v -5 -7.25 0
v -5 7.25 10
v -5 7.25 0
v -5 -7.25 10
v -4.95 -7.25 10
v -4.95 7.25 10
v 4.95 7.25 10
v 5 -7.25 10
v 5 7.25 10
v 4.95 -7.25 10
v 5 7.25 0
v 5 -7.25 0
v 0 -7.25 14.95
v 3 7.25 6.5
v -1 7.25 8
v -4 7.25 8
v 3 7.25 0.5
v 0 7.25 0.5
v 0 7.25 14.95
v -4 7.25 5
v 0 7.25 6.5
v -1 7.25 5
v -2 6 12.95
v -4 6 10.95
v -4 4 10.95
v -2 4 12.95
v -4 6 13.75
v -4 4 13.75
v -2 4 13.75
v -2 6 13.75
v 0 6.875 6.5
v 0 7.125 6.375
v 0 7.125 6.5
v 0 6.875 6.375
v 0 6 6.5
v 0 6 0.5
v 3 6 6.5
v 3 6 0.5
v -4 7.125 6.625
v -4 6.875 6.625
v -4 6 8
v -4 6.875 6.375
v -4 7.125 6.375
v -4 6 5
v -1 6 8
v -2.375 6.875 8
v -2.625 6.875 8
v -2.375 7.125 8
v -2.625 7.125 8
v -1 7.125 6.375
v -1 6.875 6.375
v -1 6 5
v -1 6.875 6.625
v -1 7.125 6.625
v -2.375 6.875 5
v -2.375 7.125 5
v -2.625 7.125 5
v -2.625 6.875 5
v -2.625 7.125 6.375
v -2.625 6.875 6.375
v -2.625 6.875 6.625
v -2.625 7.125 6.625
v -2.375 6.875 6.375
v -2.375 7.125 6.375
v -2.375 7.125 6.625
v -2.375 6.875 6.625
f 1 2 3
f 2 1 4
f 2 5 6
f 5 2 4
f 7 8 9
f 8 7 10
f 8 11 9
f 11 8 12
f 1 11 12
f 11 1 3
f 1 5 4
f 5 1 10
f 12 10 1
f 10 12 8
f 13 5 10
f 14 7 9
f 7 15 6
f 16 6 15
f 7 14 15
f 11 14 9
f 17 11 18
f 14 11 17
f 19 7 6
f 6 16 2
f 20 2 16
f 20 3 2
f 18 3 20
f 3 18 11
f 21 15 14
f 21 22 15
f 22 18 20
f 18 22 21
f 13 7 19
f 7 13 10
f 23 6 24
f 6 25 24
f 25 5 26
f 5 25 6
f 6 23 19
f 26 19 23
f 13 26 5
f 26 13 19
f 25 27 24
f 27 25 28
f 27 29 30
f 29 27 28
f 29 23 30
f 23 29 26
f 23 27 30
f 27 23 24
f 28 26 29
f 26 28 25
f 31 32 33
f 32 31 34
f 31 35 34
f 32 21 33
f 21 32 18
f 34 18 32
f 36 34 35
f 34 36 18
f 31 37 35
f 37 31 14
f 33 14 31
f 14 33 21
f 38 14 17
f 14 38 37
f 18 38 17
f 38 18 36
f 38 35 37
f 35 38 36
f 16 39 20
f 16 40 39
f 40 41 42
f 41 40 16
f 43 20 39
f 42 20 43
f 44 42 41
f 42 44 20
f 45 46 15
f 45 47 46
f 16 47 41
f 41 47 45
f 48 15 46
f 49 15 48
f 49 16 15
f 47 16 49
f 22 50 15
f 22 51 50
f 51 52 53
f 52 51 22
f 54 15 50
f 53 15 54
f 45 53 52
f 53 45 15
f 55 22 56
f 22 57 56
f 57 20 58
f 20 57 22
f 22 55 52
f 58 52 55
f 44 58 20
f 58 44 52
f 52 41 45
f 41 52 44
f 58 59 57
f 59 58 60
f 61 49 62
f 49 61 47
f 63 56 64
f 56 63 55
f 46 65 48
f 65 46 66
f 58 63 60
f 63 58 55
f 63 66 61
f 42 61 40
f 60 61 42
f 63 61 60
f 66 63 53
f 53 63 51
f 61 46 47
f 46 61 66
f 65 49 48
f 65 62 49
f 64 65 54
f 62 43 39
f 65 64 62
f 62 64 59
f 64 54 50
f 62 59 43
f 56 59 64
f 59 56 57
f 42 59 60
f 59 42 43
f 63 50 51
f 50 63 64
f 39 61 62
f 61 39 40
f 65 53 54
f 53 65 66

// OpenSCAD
    difference(){
    translate([0,0,5]){color("orange") cube([10, 14.5, 10],center=true);
    translate([0,0,5])rotate([0,45,0])color("orange") cube([7, 14.5, 7],center=true);
   translate([-3,5,7])color("orange") cube([2, 2, 3.5],center=true);
   translate([0,0,5])rotate([0,-45,0])color("orange") cube([7, 14.5, 7],center=true);
    }
   translate([0,6,0.5])cube([3,4,6]);
   translate([-4,6,5])cube([3,3,3]);}
   translate([-2.5,7,7])color("orange") cube([.25, .25, 5],center=true);
   translate([-2.5,7,6.5])rotate([0,-90,0])color("orange") cube([.25, .25, 5],center=true);
    
    
